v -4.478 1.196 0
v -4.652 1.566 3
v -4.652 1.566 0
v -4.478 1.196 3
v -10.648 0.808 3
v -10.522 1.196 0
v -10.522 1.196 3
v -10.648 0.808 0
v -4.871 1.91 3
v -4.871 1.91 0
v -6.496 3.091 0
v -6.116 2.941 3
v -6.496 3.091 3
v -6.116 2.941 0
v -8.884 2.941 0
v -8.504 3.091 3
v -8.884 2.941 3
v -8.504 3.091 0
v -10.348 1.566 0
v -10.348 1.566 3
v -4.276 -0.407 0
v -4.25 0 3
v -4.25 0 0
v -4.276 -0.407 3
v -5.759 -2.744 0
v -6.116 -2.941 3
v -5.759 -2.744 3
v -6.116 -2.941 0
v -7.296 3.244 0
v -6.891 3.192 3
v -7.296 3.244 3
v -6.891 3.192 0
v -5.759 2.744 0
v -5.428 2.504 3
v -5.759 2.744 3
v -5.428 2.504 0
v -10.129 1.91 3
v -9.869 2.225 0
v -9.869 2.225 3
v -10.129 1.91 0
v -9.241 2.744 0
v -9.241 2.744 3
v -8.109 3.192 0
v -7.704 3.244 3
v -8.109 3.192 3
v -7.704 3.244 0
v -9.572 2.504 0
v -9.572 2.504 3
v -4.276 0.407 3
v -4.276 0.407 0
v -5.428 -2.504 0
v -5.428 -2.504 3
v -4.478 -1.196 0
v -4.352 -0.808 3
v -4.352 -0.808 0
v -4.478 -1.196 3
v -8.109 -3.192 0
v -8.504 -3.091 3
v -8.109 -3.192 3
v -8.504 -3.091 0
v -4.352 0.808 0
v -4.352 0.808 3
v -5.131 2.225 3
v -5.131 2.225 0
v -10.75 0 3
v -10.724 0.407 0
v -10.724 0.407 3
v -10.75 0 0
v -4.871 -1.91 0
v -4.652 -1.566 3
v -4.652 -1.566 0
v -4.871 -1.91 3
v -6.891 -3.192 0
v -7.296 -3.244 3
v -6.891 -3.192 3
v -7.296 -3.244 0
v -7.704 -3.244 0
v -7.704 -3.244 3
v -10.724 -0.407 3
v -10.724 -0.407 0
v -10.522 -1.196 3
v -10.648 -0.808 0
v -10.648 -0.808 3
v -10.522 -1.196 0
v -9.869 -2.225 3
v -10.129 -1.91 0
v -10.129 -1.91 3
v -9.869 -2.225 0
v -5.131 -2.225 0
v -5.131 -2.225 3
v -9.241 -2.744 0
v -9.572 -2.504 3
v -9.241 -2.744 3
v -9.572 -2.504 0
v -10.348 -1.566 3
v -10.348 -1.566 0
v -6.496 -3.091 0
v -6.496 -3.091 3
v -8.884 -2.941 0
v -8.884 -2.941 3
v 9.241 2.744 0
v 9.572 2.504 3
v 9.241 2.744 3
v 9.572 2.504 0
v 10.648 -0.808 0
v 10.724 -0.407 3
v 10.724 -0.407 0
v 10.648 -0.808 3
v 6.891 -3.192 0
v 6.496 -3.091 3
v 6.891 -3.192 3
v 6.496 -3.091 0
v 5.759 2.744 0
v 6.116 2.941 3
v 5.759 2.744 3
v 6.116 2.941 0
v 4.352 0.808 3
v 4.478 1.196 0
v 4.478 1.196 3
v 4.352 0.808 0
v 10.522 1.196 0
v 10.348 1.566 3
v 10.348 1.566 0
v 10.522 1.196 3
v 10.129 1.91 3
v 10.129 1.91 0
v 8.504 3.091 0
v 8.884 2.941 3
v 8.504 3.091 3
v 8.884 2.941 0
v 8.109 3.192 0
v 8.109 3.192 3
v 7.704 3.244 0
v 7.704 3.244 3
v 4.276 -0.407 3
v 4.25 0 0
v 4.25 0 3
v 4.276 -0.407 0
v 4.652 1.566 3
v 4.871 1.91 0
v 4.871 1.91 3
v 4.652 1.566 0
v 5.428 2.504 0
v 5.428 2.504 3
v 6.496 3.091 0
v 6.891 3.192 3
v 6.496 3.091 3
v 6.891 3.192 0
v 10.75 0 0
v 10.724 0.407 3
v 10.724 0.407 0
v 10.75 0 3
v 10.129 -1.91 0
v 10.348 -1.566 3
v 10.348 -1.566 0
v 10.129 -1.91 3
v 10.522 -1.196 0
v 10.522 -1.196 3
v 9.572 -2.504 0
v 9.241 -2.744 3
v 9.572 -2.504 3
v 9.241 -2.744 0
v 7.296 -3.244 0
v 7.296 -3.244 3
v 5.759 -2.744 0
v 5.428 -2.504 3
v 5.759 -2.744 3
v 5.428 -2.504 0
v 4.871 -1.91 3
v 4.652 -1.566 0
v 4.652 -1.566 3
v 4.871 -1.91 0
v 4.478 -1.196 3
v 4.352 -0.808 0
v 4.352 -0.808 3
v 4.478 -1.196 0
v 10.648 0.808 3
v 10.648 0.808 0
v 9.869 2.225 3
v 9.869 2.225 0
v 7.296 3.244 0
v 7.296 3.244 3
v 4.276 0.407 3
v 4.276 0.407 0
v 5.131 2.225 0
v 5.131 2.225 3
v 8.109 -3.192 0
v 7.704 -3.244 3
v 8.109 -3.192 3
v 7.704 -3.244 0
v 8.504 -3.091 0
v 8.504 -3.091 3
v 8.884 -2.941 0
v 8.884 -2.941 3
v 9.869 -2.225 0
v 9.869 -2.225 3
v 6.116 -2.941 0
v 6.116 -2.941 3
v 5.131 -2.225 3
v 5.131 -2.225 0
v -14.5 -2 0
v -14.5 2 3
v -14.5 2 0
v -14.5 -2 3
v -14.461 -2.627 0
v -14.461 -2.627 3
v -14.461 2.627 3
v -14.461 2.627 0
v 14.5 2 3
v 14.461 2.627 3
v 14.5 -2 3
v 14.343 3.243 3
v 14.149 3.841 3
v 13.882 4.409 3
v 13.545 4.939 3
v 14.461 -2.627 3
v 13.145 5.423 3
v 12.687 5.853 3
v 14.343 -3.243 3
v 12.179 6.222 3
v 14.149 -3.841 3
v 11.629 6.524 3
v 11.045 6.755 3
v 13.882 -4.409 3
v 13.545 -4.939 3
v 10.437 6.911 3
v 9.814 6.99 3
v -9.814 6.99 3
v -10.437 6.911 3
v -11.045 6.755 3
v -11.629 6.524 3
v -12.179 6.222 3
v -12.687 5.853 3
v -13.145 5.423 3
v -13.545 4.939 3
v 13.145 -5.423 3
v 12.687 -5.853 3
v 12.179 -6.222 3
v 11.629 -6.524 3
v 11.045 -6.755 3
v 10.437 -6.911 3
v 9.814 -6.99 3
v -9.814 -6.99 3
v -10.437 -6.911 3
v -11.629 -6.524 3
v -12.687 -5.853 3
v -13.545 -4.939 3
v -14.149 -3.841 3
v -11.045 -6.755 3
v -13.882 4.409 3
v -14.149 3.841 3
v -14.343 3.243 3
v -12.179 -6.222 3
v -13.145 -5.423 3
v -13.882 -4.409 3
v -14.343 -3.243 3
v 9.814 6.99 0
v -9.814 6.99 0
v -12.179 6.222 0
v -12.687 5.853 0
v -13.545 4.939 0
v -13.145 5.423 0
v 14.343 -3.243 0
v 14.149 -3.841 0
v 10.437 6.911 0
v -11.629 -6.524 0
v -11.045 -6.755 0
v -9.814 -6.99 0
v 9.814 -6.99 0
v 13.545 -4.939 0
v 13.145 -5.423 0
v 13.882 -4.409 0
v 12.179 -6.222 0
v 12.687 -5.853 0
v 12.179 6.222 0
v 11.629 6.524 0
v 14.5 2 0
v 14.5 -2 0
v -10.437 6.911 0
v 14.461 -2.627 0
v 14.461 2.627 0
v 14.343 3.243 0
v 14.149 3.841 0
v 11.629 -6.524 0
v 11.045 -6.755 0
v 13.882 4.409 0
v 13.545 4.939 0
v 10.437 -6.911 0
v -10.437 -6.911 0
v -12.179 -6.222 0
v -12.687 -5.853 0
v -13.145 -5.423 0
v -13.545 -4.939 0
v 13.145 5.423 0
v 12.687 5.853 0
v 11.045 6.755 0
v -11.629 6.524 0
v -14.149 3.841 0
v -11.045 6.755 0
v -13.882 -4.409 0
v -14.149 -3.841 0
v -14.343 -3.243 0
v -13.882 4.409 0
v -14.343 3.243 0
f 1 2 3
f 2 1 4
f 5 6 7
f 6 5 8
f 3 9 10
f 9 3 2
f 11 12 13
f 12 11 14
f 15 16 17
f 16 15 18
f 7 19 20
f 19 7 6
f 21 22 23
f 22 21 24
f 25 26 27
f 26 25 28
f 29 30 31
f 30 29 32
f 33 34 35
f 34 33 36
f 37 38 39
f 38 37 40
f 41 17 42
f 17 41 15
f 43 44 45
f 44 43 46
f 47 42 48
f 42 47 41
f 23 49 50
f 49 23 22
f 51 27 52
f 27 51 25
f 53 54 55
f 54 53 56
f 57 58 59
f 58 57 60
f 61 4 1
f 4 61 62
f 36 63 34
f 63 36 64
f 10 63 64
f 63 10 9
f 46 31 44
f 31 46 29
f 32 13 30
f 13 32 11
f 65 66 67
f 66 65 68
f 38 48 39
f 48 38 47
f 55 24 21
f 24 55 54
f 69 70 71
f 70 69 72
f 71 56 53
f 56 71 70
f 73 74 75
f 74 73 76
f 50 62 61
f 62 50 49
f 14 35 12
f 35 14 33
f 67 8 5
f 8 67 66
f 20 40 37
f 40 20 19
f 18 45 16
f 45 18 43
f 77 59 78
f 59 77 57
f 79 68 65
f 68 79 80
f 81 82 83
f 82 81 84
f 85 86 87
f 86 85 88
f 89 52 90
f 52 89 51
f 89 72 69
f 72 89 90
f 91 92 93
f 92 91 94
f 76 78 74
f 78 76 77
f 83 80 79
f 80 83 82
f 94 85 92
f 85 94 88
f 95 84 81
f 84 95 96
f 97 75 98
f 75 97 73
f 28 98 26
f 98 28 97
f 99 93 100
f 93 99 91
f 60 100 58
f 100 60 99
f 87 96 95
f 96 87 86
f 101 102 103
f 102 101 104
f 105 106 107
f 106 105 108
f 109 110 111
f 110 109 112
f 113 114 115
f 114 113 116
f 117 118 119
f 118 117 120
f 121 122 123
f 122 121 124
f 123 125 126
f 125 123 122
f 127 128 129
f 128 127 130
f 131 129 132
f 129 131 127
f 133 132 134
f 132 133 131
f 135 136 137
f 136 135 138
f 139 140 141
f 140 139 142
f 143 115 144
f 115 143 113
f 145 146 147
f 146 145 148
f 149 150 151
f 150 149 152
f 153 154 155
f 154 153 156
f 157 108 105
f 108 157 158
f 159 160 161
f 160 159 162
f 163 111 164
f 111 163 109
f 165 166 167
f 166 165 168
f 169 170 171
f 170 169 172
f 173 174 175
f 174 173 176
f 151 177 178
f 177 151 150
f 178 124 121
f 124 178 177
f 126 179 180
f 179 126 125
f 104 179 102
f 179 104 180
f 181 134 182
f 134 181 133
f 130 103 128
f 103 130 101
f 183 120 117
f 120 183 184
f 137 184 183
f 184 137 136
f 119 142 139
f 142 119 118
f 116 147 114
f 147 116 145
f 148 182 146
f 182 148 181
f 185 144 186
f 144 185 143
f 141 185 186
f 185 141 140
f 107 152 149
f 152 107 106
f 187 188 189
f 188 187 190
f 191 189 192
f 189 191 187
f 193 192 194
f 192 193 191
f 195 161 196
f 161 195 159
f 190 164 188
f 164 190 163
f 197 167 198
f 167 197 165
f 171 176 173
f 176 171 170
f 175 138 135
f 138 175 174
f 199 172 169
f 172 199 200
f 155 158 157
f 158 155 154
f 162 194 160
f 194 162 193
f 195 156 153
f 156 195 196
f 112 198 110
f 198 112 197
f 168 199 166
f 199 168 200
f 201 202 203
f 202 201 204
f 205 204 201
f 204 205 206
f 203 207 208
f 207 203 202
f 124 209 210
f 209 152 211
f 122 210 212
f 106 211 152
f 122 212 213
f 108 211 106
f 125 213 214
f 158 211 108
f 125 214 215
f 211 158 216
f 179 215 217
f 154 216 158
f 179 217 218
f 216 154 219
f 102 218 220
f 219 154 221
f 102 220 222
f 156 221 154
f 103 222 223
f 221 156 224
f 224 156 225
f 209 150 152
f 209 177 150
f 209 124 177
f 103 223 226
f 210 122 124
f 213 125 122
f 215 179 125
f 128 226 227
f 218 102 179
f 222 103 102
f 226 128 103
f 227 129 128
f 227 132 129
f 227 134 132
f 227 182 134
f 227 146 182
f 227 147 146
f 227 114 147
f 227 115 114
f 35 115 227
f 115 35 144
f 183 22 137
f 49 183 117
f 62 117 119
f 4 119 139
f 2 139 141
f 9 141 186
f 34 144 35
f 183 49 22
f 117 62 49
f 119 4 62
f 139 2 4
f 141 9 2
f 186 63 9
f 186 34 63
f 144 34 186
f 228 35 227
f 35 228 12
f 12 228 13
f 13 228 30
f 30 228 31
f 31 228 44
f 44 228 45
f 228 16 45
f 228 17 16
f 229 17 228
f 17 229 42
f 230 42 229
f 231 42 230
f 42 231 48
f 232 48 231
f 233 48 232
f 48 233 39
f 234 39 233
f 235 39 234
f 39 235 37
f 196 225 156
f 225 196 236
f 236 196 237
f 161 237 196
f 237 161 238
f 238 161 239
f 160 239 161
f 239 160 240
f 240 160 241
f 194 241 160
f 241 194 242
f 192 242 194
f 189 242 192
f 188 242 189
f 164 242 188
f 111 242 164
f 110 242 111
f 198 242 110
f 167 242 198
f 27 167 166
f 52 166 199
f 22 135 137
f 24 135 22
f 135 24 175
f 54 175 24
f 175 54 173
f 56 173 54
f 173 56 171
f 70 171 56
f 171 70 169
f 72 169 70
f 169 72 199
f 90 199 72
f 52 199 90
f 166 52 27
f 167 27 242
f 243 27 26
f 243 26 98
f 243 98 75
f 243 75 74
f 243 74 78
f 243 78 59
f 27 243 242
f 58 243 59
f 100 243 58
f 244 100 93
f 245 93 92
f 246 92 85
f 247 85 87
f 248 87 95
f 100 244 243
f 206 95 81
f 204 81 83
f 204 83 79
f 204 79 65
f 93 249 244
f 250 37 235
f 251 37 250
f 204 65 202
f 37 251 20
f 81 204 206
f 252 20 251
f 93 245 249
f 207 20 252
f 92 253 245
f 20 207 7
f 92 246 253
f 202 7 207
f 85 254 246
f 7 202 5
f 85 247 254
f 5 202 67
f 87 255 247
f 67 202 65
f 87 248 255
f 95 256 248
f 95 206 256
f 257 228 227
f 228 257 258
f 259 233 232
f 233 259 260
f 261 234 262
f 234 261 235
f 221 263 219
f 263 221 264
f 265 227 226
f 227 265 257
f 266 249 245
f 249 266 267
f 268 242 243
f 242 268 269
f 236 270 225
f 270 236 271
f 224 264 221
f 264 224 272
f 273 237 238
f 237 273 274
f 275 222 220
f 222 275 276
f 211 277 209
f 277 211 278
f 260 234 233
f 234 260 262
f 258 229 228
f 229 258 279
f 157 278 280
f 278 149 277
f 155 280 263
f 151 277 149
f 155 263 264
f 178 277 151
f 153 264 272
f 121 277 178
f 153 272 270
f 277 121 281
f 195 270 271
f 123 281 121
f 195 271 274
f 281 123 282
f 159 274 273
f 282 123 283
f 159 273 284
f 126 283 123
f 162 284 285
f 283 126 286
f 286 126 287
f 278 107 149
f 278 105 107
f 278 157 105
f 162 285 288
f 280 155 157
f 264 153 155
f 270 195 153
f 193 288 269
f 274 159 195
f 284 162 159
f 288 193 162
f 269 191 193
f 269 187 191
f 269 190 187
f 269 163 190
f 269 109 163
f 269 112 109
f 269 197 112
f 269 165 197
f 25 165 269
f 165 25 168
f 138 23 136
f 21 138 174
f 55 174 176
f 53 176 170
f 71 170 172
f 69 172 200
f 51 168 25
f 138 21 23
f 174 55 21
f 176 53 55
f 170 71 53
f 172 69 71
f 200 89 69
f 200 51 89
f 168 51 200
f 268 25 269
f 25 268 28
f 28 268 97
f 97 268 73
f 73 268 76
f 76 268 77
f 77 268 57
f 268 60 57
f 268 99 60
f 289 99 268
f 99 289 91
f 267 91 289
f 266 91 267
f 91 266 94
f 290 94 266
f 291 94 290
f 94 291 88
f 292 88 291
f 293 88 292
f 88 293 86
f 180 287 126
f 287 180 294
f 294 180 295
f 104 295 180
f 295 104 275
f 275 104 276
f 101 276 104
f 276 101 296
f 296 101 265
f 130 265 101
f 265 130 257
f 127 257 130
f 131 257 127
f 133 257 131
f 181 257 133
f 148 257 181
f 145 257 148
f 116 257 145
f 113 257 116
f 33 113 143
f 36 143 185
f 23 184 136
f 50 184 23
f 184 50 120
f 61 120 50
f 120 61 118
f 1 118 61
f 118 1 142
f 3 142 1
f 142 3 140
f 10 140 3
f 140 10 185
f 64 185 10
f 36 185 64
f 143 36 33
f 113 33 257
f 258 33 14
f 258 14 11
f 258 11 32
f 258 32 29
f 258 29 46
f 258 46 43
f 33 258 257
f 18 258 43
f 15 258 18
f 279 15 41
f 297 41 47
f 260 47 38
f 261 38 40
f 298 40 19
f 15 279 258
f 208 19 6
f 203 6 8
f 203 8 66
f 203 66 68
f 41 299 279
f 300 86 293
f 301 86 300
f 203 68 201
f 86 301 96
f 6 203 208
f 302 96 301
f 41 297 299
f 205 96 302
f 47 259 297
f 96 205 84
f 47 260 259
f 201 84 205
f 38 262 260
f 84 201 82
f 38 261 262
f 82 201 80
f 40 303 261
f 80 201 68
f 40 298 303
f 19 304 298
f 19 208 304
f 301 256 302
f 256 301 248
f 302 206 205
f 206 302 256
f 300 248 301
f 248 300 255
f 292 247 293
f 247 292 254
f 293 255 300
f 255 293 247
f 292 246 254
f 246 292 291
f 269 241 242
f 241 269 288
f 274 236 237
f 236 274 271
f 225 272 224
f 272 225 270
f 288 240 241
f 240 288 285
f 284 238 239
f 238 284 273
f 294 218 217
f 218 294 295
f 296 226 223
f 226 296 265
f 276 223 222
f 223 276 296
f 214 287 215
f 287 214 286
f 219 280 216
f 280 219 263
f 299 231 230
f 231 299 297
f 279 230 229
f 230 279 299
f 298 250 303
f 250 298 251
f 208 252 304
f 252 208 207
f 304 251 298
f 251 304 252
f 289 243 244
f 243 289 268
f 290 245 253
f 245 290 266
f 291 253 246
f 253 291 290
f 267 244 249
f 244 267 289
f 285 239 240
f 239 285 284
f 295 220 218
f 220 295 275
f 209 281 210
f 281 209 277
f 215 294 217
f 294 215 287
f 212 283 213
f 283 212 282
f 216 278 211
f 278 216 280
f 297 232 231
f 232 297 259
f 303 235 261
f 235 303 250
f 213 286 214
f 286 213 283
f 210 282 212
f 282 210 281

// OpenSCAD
// Generated by SolidPython 1.1.3 on 2023-03-12 21:50:42
$fn = 50;


difference() {
	union() {
		translate(v = [0, 0, 0]) {
			rotate(a = [0, 0, 0]) {
				hull() {
					translate(v = [-9.5000000000, 2.0000000000, 0]) {
						rotate(a = [0, 0, 0]) {
							translate(v = [0, 0, 0]) {
								rotate(a = [0, 0, 0]) {
									cylinder(h = 3, r = 5);
								}
							}
						}
					}
					translate(v = [9.5000000000, 2.0000000000, 0]) {
						rotate(a = [0, 0, 0]) {
							translate(v = [0, 0, 0]) {
								rotate(a = [0, 0, 0]) {
									cylinder(h = 3, r = 5);
								}
							}
						}
					}
					translate(v = [-9.5000000000, -2.0000000000, 0]) {
						rotate(a = [0, 0, 0]) {
							translate(v = [0, 0, 0]) {
								rotate(a = [0, 0, 0]) {
									cylinder(h = 3, r = 5);
								}
							}
						}
					}
					translate(v = [9.5000000000, -2.0000000000, 0]) {
						rotate(a = [0, 0, 0]) {
							translate(v = [0, 0, 0]) {
								rotate(a = [0, 0, 0]) {
									cylinder(h = 3, r = 5);
								}
							}
						}
					}
				}
			}
		}
	}
	union() {
		translate(v = [-7.5000000000, 0.0000000000, 0]) {
			rotate(a = [0, 0, 0]) {
				translate(v = [0, 0, -50]) {
					rotate(a = [0, 0, 0]) {
						cylinder(h = 100, r = 3.2500000000);
					}
				}
			}
		}
		translate(v = [7.5000000000, 0.0000000000, 0]) {
			rotate(a = [0, 0, 0]) {
				translate(v = [0, 0, -50]) {
					rotate(a = [0, 0, 0]) {
						cylinder(h = 100, r = 3.2500000000);
					}
				}
			}
		}
	}
}
/***********************************************
*********      SolidPython code:      **********
************************************************
 
from solid import *
import os
import subprocess

import oomB

import opsc_library_gen

mode = "laser"
#mode = "3d_print"

defined_objects = {}

radius_dict = {}
countersunk_dict = {}


def set_mode(m):
    global mode
    mode = m
    radius_dict['M6'] = 6.5/2
    radius_dict['M3'] = 3.3/2
    if mode == "laser":
        radius_dict['M6'] = 6/2
        radius_dict['M3'] = 3/2

    countersunk_dict['M3'] = {}
    countersunk_dict['M3']['little_rad'] = radius_dict['M3']
    countersunk_dict['M3']['big_rad'] = (5.5+0.6)/2
    if mode == "laser":
        countersunk_dict['M3']['big_rad'] = (4.75+0.6)/2
        countersunk_dict['M3']['little_rad'] = (4.75+0.6)/2

    countersunk_dict['M3']['height'] = 1.7


def opsc_make_object(filename, objects, save_type="none",resolution=50, layers = 1, tilediff = 200, mode="laser", overwrite=True):
    if overwrite or not os.path.exists(filename):
        set_mode(mode)
        save_type = save_type.lower()
        os.makedirs(os.path.dirname(filename), exist_ok=True)
        final_object = opsc_get_object(objects, mode = mode)
        # Save the final object to the specified filename    
        scad_render_to_file(final_object, filename, file_header='$fn = %s;' % resolution, include_orig_code=True)
        if mode == "laser":
            filename_laser = filename.replace(".scad","-flat.scad")
            scad_render_to_file(getLaser(final_object, layers=layers, tilediff=tilediff), filename_laser, file_header='$fn = %s;' % resolution, include_orig_code=True)
            if save_type == "all":
                saveToAll(filename_laser)
            elif save_type == "dxf":
                saveToDxf(filename_laser)
        if save_type == "all":
            saveToAll(filename)
        elif save_type == "dxf":
            saveToDxf(filename)


def opsc_get_object(objects, mode = "laser"):
    # Create the solidpython objects only include the positive objects and if they don't have inclusion or their inclusion is either all or mode
    # Initialize an empty list to store the results
    positive_objects = []

    # Iterate over the "objects" list
    for obj in objects:
        # Check if the current object has a "type" key with a value of "positive"
        if obj['type'] == 'positive':
            # Check if the current object has an "inclusion" key and its value matches "mode",
            # or if the current object does not have an "inclusion" key at all
            if not 'inclusion' in obj or obj['inclusion'] == "all" or obj['inclusion'] == mode:
                # Call the "get_opsc_item" function with the current object as an argument
                opsc_item = get_opsc_item(obj)
                # Add the result to the "positive_objects" list
                positive_objects.append(opsc_item)
# Initialize an empty list to store the results
    negative_objects = []

    # Iterate over the "objects" list
    for obj in objects:
        # Check if the current object has a "type" key with a value of "negative"
        if obj['type'] == 'negative':
            # Check if the current object has an "inclusion" key and its value matches "mode",
            # or if the current object does not have an "inclusion" key at all
            if not 'inclusion' in obj or obj['inclusion'] == "all" or obj['inclusion'] == mode:
                # Call the "get_opsc_item" function with the current object as an argument
                opsc_item = get_opsc_item(obj)
                # Add the result to the "negative_objects" list
                negative_objects.append(opsc_item)
    
    #positive_objects = [get_opsc_item(obj) for obj in objects if obj['type'] == 'positive']
    #negative_objects = [get_opsc_item(obj) for obj in objects if obj['type'] == 'negative']
    # Union the positive objects
    positive_object = union()(*positive_objects)
    # Union the negative objects
    negative_object = union()(*negative_objects)
    # Create the final object by subtracting the negative objects from the positive objects
    return difference()(positive_object, negative_object)

def get_opsc_item(params):
    # A dictionary to map radius string values to numerical values
    #radius_dict = {'small': 5, 'medium': 10, 'large': 15}
    # An array of function names for basic shapes
    basic_shapes = ['cube', 'sphere', 'cylinder']
    
    # An array of function names for other shapes
    other_shapes = ['hole', 'slot', 'rounded_rectangle', 'countersunk']
    


    # Convert radius to r if present, and remove radius from the params dictionary
    if 'radius' in params:
        if isinstance(params['radius'], str):
            # Use the radius_dict to map the radius string value to a numerical value
            params['r'] = radius_dict[params['radius']]
        else:
            params['r'] = params['radius']
        del params['radius']
    

    # Check if the object type is a basic shape
    if params['shape'] in basic_shapes:
        # Remove shape and unexpected dictionary values
        allowed_keys = {'size', 'r', 'r1', 'r2', 'd', 'h', 'rw', 'rh', 'dw', 'dh'}
        shape_params = {k: v for k, v in params.items() if k in allowed_keys}

        # Call the corresponding function for the shape parameter, using ** notation to pass the shape_params dictionary as keyword arguments
        return get_opsc_transform(params,globals()[params['shape']](**shape_params))
    
    # If the object type is not a basic shape, check if it's a defined object or one of the other shapes
    elif params['shape'] in other_shapes:
        # Call the corresponding function for the shape parameter, passing the params dictionary as an argument
        p2 = copy.deepcopy(params)
        p2["pos"] = [0,0,0]
        return get_opsc_transform(params,globals()[params['shape']](p2))
    
    # If the object is not a basic shape or a defined object, try to import it from a .scad file
    else:
        obj = defined_objects[params['shape']]
        return get_opsc_transform(params,obj)

def get_opsc_transform(params, solid_obj):
    # Rotate the object based on the 'rot' field in the params dictionary, or the 'rotX', 'rotY', and 'rotZ' fields if 'rot' is not present
    rot = params.get('rot', [])
    if rot:
        rotX, rotY, rotZ = rot
    else:
        rotX = params.get('rotX', 0)
        rotY = params.get('rotY', 0)
        rotZ = params.get('rotZ', 0)
    solid_obj = rotate([rotX, rotY, rotZ])(solid_obj)

    # Translate the object based on the 'pos' field in the params dictionary, or the 'x', 'y', and 'z' fields if 'pos' is not present
    pos = params.get('pos', [])
    if pos:
        x, y, z = pos
    else:
        x = params.get('x', 0)
        y = params.get('y', 0)
        z = params.get('z', 0)
    solid_obj = translate([x, y, z])(solid_obj)
    return solid_obj


import random

def opsc_easy_array(type, shape, repeats, pos_start, shift_arr, **kwargs):
    for i in range(0,3):
        repeats.append(1)
        pos_start.append(0)
        shift_arr.append(0)
    return_objects = []

    for x in range(0,repeats[0]):
        for y in range(0,repeats[1]):
            for z in range(0,repeats[2]):
                return_objects.append(opsc_easy(type, shape, pos=[pos_start[0]+x*shift_arr[0],pos_start[1]+y*shift_arr[1],pos_start[2]+z*shift_arr[2]], **kwargs))
    return return_objects                



def opsc_easy(type, shape, **kwargs):
    obj = {
        'type': type,
        'shape': shape
    }
    for param in ['size', 'r', 'r1', 'r2', 'd', 'h', 'rw', 'rh', 'dw', 'dh', 'pos', 'x', 'y', 'z', 'rot', 'rotX', 'rotY', 'rotZ', "w", "inclusion"]:
        if param in kwargs:
            obj[param] = kwargs[param]
    return obj

def hole(params):
    p2 = copy.deepcopy(params)  
    # Check if the radius is a string and replace it with the corresponding value from the dictionary
    if isinstance(p2['r'], str):
        p2['r'] = radius_dict[p2['r']]
    
    # Set the height to 100 if not specified
    if 'h' not in p2:
        p2['h'] = 100
        p2["pos"] = [0,0,-50]
    p2["center"] = True
    # Create the cylinder object
    p2["shape"] = "cylinder"
    p2["type"] = "positive"

    return get_opsc_item(p2)

import copy

def countersunk(params):
    p2 = copy.deepcopy(params)
    counter_rad = p2['r']
    p2['r'] = radius_dict[p2['r']]
    hp = copy.deepcopy(p2)
    hp["type"] = "positive"
    hp["shape"] = "hole"
    del hp["rot"]
    hol = get_opsc_item(hp)
    
    cp = copy.deepcopy(p2)
    cp["h"] = countersunk_dict[counter_rad]["height"]
    cp["r2"] = countersunk_dict[counter_rad]["little_rad"]
    cp["r1"] = countersunk_dict[counter_rad]["big_rad"]
    del cp["r"]
    del cp["rot"]
    cp["type"] = "positive"
    cp["shape"] = "cylinder"
    cp["pos"] = [0,0,0]

    top = get_opsc_item(cp)
    return union()(hol,top)



def slot(params):  
    p2 = copy.deepcopy(params) 
    if isinstance(p2['r'], str):
        p2['r'] = radius_dict[p2['r']]
    p2["type"] = "positive"
    p2["shape"] = "hole"
    del p2["rot"]
    p2["pos"] = [0,0,0]
    left = copy.deepcopy(p2)
    right = copy.deepcopy(p2)
    left["pos"][0] = p2["w"] / 2 - p2["r"] 
    
    right["pos"][0] = -p2["w"] / 2 + p2["r"] 
    pass
    leftObj = get_opsc_item(left)
    rightObj = get_opsc_item(right)
    return hull()(leftObj, rightObj)

def rounded_rectangle(params):   
    p2 = copy.deepcopy(params) 
    p2["h"] = p2["size"][2]
    p2["pos"] = p2.get("pos", [0, 0, 0]) 
    p2["type"] = "positive"
    p2["shape"] = "hole"
    p2["pos"] = [0,0,0]
    
    if 'rot' in p2:
        del p2["rot"]   
    if 'r' not in p2:
        p2["r"] = 5 
    tl = copy.deepcopy(p2)
    tr = copy.deepcopy(p2)
    bl = copy.deepcopy(p2)
    br = copy.deepcopy(p2)
    tl["pos"][0] = -(p2["size"][0] - p2["r"]*2)/2
    tl["pos"][1] = (p2["size"][1] - p2["r"]*2)/2
    tr["pos"][0] = (p2["size"][0] - p2["r"]*2)/2
    tr["pos"][1] = (p2["size"][1] - p2["r"]*2)/2
    bl["pos"][0] = -(p2["size"][0] - p2["r"]*2)/2
    bl["pos"][1] = -(p2["size"][1] - p2["r"]*2)/2
    br["pos"][0] = (p2["size"][0] - p2["r"]*2)/2
    br["pos"][1] = -(p2["size"][1] - p2["r"]*2)/2
    del tl["size"]
    del tr["size"]
    del bl["size"]
    del br["size"]
    tlo = get_opsc_item(tl)
    tro = get_opsc_item(tr)
    blo = get_opsc_item(bl)
    bro = get_opsc_item(br)    
    return hull()(tlo, tro, blo, bro)



def import_scad_object(filename):
    # Import the .scad file and convert it to a solidpython object
    #filename = "parts"
    obj = import_scad(filename)
    return obj.main()
    


import os
import solid as solidpython

# A dictionary to store the defined objects


def load_scad_objects():
    opsc_library_gen.gen_library(defined_objects)

import random

def test(num_objects):
    objects = []
    for i in range(num_objects):
        # Choose a random shape
        #shape = random.choice(['cube', 'sphere', 'cylinder', 'hole', 'slot', "rounded_rectangle"])
        shape = random.choice(["rounded_rectangle"])

        # Choose a random type
        type = random.choice(['positive', 'negative'])
        
        # Create an empty object dictionary
        obj = {'shape': shape, 'type': type}
        
        # Set shape-specific parameters
        if obj['shape'] in ['cube']:
            obj['size'] =  [random.uniform(5, 15), random.uniform(5, 15), random.uniform(5, 15)]
        if obj['shape'] in ['rounded_rectangle']:
            obj['size'] =  [random.uniform(5, 15), random.uniform(5, 15), random.uniform(5, 15)]
            obj['r'] = random.uniform(0.5, 5)
        elif obj['shape'] == 'sphere':
            obj['r'] = random.uniform(5, 15)
        elif obj['shape'] in ['cylinder', 'hole']:
            obj['r'] = random.uniform(0.5, 5)
            obj['h'] = random.uniform(5, 15)
        elif obj['shape'] == 'slot':
            obj['r'] = random.uniform(0.5, 5)
            obj['h'] = random.uniform(5, 15)
            obj['w'] = random.uniform(5, 15)
        
        # Set a random position and rotation
        obj['pos'] = [random.uniform(-20, 20), random.uniform(-20, 20), random.uniform(-20, 20)]
        obj['rot'] = [random.uniform(-180, 180), random.uniform(-180, 180), random.uniform(-180, 180)]
        
        # Add the object to the list
        objects.append(obj)
    return objects

####### old file saving
def saveToAll(fileIn):
    saveToDxf(fileIn)
    saveToPng(fileIn)
    saveToStl(fileIn)
    saveToSvg(fileIn)

def saveToDxf(fileIn, fileOut="", copy_to_laser=True):
    if fileOut == "":
        fileOut = fileIn.replace(".scad",".dxf")
    saveToFile(fileIn, fileOut)


    
def saveToPng(fileIn, fileOut="",extra="--render"):
    if fileOut == "":
        fileOut = fileIn.replace(".scad",".png")
    saveToFile(fileIn, fileOut)

def saveToStl(fileIn, fileOut=""):
    if fileOut == "":
        fileOut = fileIn.replace(".scad",".stl")
    saveToFile(fileIn, fileOut)
    
def saveToSvg(fileIn, fileOut=""):
    if fileOut == "":
        fileOut = fileIn.replace(".scad",".svg")
    saveToFile(fileIn, fileOut)

def saveToFile(fileIn, fileOut,extra=""):
    #extra = extra + " --colorscheme Tomorrow"

    launchStr = 'openscad -o "' + fileOut + '"' + extra + ' "' + fileIn + '"'
    if ".png" in fileOut:
        launchStr = launchStr + " --render"
    print("            saveToFile launch string: " + launchStr)
    subprocess.run(launchStr)
    x=0

def getLaser(final_object,start=1.5,layers=1,thickness=3,tilediff=200):
        rv= []

        for x in range(layers):
            rv.append(translate([0,x*tilediff,0])(
                    projection()(
                        intersection()(translate([-500,-500,start+x*thickness])(cube(size=[1000,1000,0.1])),
                            final_object
                        )
                    )
            )
            )
            
        return union()(rv)

set_mode("laser")
load_scad_objects() 
 
************************************************/
